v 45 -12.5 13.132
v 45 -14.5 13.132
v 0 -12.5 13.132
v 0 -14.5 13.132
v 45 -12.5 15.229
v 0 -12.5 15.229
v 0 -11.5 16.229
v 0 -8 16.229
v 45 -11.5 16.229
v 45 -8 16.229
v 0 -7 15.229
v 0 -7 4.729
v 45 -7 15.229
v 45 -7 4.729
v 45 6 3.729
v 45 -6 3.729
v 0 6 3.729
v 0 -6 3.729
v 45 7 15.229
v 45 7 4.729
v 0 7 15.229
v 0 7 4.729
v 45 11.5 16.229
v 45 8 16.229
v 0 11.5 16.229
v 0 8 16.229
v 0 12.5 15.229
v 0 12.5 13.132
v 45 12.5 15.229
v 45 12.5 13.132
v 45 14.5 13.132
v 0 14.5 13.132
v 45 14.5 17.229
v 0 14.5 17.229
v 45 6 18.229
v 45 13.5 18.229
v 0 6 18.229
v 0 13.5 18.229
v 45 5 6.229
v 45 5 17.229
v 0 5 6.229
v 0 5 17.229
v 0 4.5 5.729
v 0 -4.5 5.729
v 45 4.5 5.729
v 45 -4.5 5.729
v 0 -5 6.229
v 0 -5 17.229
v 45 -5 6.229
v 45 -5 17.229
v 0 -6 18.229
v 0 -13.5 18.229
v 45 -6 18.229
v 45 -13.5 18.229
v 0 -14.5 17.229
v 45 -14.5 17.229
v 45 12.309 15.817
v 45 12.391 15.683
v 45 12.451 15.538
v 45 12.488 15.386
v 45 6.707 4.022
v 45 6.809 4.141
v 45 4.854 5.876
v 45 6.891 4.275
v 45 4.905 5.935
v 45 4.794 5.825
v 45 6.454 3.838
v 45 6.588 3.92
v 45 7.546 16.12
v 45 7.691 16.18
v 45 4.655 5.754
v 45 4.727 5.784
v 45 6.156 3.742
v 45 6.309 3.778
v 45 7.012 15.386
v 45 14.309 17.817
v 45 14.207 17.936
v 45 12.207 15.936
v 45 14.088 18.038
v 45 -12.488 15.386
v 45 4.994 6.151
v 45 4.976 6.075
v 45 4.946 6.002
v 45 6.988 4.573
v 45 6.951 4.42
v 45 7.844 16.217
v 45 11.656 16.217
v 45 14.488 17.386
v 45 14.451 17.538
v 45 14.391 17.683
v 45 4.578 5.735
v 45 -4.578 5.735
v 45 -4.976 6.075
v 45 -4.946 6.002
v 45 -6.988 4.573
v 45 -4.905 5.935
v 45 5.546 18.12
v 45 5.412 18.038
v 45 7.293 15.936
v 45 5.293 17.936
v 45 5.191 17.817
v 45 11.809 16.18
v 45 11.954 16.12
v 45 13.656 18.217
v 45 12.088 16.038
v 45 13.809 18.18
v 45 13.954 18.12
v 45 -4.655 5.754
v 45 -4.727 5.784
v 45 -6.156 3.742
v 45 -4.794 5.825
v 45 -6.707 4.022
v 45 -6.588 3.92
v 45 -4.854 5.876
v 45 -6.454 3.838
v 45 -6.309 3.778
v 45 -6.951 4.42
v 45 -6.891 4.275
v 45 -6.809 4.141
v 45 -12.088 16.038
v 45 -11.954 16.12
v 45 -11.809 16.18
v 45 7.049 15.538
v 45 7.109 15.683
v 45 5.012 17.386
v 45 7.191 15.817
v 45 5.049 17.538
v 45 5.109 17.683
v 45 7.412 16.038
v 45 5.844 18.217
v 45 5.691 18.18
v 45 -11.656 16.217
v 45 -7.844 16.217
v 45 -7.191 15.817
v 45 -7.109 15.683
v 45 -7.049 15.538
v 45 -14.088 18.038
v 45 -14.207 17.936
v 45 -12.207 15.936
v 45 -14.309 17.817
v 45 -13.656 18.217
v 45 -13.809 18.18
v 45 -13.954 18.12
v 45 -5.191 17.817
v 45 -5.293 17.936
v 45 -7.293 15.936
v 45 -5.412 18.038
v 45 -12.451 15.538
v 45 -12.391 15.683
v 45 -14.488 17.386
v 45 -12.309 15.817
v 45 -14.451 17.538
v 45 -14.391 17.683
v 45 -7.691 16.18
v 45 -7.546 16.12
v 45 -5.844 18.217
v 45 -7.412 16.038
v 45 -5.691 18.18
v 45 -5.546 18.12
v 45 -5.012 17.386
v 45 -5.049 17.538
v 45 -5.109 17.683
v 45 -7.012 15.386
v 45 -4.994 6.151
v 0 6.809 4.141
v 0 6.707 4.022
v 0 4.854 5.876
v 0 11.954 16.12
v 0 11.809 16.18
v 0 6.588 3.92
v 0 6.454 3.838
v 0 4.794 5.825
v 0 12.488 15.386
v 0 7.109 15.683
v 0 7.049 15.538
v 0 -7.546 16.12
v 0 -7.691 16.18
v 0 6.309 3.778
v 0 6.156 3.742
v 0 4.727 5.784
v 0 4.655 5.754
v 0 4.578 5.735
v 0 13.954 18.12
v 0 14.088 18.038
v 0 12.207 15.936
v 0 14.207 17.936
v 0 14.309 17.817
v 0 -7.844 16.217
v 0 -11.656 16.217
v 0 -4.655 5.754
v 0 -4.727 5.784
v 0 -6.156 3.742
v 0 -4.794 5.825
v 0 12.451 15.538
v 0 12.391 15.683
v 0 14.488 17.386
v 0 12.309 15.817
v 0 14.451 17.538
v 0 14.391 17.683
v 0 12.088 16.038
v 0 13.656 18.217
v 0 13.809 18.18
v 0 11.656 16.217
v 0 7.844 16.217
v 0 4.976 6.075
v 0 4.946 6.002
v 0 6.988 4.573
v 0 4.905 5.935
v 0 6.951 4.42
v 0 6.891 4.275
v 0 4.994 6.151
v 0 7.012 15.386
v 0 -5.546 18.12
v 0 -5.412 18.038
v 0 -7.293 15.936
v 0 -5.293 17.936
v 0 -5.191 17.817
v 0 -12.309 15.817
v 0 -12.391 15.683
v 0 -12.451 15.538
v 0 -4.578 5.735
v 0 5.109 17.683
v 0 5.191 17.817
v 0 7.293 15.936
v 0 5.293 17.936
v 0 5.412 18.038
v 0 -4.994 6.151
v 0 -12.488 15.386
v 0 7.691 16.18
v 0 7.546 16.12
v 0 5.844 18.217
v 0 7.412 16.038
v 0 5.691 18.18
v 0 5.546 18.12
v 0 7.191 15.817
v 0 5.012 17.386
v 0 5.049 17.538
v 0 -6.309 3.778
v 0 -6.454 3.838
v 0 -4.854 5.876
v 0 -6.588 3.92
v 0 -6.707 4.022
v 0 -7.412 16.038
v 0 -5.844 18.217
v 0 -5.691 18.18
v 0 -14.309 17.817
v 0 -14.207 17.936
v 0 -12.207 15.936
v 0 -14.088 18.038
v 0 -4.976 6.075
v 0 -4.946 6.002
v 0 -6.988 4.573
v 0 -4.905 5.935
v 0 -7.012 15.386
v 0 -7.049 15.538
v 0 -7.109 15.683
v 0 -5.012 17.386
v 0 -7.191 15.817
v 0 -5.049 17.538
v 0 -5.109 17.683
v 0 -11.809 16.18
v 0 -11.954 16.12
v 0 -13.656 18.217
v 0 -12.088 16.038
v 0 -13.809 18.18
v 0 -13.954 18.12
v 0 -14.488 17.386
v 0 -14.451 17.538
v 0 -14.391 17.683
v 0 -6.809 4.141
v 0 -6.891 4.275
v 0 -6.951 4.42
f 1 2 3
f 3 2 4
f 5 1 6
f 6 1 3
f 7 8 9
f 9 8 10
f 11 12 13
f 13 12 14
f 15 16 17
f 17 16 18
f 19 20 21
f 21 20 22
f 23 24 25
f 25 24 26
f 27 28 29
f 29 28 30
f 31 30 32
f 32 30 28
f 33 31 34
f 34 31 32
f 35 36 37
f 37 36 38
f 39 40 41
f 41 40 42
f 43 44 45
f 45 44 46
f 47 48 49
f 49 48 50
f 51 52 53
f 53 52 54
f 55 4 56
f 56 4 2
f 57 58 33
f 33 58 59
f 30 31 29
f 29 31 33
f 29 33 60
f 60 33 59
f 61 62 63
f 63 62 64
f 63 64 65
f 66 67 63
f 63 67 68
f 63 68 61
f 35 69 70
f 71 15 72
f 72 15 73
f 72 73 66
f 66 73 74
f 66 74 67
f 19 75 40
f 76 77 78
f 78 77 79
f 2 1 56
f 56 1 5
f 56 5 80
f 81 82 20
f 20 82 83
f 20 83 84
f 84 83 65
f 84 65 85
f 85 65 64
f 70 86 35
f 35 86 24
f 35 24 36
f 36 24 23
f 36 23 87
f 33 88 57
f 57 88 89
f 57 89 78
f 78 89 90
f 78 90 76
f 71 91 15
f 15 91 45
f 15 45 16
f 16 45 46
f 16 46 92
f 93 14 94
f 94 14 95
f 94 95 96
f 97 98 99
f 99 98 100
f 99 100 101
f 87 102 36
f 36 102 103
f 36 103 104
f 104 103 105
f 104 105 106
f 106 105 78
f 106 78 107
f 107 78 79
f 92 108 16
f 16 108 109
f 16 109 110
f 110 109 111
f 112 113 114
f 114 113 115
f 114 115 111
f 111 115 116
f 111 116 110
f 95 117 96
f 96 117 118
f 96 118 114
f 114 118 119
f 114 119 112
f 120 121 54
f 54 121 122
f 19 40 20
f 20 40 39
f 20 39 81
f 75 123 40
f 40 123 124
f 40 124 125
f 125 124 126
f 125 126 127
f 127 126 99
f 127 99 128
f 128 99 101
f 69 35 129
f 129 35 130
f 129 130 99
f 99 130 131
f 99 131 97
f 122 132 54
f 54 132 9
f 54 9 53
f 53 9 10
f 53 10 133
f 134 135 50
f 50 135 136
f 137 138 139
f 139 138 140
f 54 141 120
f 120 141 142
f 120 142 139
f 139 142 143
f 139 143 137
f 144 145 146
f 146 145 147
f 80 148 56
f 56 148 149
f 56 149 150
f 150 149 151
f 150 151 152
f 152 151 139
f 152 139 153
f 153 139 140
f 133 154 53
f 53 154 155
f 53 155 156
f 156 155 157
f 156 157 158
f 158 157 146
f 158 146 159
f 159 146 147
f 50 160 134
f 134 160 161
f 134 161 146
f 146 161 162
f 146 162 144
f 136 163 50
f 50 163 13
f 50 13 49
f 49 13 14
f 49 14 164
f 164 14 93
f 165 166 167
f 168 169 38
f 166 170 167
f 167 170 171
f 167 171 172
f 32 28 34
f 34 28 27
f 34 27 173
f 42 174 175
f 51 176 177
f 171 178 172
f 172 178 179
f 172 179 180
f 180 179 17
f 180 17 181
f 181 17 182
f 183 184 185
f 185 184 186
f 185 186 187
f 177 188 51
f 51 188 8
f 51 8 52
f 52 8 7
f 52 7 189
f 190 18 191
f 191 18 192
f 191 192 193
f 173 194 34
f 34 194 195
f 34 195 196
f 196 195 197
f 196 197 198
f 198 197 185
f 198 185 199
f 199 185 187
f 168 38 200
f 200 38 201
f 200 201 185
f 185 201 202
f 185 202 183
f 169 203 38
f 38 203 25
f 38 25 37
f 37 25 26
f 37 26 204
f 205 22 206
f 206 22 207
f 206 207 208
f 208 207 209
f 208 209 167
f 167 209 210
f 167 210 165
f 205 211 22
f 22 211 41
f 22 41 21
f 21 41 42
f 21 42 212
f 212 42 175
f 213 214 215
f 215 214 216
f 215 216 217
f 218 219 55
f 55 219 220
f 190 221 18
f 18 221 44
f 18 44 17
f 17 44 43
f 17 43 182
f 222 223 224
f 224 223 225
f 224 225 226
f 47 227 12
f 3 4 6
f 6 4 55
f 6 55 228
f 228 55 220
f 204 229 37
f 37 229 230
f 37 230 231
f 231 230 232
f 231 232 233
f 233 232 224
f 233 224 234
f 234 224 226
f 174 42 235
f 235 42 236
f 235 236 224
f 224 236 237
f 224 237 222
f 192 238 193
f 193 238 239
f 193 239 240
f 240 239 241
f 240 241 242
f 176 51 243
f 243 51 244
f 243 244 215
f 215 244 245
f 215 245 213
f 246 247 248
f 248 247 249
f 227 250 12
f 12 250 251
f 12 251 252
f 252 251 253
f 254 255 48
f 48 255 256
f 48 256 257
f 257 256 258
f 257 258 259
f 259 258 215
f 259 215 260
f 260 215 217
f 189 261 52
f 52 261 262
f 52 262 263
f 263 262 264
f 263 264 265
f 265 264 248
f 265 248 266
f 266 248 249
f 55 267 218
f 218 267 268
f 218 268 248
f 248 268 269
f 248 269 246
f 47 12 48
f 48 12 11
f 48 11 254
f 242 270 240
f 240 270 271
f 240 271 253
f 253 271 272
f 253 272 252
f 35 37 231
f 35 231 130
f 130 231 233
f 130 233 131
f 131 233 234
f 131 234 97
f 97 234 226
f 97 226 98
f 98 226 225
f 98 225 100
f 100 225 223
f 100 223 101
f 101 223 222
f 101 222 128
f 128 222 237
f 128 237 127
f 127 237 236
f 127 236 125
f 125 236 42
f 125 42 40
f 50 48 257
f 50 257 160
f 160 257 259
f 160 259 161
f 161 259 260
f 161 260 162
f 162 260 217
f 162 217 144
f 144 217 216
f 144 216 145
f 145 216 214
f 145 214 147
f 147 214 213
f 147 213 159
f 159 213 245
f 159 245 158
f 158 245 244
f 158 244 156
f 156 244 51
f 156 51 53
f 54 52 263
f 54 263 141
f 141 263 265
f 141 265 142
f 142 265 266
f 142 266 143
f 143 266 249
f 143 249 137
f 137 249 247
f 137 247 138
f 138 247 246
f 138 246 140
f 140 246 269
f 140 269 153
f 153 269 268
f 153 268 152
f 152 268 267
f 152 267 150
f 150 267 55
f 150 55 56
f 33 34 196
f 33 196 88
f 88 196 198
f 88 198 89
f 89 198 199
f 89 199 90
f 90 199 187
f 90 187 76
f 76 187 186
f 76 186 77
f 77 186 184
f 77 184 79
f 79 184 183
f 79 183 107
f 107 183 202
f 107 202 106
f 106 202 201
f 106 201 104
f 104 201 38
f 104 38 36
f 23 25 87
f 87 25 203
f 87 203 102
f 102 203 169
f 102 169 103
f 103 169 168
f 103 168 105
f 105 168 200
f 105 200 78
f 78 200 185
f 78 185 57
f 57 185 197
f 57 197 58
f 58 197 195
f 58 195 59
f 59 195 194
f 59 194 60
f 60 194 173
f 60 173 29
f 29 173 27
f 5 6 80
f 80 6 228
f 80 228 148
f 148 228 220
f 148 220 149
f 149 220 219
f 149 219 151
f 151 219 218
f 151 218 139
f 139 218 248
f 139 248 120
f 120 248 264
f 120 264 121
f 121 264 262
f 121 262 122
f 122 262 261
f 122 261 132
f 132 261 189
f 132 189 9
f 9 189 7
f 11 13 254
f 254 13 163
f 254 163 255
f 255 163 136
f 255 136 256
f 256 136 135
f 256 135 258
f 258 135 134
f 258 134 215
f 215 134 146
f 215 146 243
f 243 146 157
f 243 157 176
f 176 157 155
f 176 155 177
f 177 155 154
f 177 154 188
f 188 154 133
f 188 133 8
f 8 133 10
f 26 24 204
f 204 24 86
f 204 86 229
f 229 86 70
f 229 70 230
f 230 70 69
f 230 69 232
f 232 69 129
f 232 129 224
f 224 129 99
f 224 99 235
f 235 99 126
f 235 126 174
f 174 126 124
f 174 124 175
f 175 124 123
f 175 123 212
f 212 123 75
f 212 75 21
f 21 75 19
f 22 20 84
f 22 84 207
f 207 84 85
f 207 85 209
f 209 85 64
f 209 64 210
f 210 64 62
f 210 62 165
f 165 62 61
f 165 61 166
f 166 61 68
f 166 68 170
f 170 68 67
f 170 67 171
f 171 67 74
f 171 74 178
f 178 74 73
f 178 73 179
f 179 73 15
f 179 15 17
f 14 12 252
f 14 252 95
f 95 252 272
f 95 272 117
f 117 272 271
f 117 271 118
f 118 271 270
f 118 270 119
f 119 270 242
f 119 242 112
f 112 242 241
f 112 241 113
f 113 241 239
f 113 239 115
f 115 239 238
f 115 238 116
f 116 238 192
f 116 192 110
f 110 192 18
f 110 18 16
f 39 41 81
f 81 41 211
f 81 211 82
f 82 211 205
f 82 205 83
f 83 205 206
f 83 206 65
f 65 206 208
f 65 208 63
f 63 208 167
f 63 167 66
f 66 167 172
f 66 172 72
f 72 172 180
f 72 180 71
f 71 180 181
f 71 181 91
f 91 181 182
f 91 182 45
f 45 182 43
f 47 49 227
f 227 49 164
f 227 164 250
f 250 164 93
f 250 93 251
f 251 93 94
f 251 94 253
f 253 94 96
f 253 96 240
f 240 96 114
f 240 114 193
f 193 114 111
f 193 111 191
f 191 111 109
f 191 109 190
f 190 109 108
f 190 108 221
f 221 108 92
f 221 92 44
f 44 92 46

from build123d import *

# Parameters (mm, degrees)
BOSS_EXTRUDE1_DEPTH = 45
FILLET1_R           = 1
FILLET2_R           = 0.5


with BuildPart() as part:
    # Sketch3 → Boss-Extrude1 (new body)
    with BuildSketch(Plane(origin=(0, 0, 0), x_dir=(0, 0, -1), z_dir=(1, 0, 0))):
        Polygon((-3.729267548, 0), (-5.729267548, 0), (-5.729267548, -5), (-18.229267548, -5), (-18.229267548, -14.5), (-13.131696696, -14.5), (-13.131696696, -12.5), (-14.52244663, -12.5), (-16.229267548, -12.5), (-16.229267548, -7), (-3.729267548, -7), align=None)
        Polygon((-18.229267548, 5), (-5.729267548, 5), (-5.729267548, 0), (-3.729267548, 0), (-3.729267548, 7), (-16.229267548, 7), (-16.229267548, 12.5), (-14.52244663, 12.5), (-13.131696696, 12.5), (-13.131696696, 14.5), (-18.229267548, 14.5), align=None)
    extrude(amount=BOSS_EXTRUDE1_DEPTH)

    # Fillet1
    fillet1_edges = [part.edges().sort_by_distance(p)[0] for p in [
        (22.5, -14.5, 18.229267548),
        (22.5, -5, 18.229267548),
        (22.5, 5, 18.229267548),
        (22.5, 14.5, 18.229267548),
        (22.5, 12.5, 16.229267548),
        (22.5, 7, 16.229267548),
        (22.5, 7, 3.729267548),
        (22.5, -7, 3.729267548),
        (22.5, -7, 16.229267548),
        (22.5, -12.5, 16.229267548),
    ]]
    fillet(fillet1_edges, radius=FILLET1_R)

    # Fillet2
    fillet2_edges = [part.edges().sort_by_distance(p)[0] for p in [
        (22.5, -5, 5.729267548),
        (22.5, 5, 5.729267548),
    ]]
    fillet(fillet2_edges, radius=FILLET2_R)


solid = part.part
